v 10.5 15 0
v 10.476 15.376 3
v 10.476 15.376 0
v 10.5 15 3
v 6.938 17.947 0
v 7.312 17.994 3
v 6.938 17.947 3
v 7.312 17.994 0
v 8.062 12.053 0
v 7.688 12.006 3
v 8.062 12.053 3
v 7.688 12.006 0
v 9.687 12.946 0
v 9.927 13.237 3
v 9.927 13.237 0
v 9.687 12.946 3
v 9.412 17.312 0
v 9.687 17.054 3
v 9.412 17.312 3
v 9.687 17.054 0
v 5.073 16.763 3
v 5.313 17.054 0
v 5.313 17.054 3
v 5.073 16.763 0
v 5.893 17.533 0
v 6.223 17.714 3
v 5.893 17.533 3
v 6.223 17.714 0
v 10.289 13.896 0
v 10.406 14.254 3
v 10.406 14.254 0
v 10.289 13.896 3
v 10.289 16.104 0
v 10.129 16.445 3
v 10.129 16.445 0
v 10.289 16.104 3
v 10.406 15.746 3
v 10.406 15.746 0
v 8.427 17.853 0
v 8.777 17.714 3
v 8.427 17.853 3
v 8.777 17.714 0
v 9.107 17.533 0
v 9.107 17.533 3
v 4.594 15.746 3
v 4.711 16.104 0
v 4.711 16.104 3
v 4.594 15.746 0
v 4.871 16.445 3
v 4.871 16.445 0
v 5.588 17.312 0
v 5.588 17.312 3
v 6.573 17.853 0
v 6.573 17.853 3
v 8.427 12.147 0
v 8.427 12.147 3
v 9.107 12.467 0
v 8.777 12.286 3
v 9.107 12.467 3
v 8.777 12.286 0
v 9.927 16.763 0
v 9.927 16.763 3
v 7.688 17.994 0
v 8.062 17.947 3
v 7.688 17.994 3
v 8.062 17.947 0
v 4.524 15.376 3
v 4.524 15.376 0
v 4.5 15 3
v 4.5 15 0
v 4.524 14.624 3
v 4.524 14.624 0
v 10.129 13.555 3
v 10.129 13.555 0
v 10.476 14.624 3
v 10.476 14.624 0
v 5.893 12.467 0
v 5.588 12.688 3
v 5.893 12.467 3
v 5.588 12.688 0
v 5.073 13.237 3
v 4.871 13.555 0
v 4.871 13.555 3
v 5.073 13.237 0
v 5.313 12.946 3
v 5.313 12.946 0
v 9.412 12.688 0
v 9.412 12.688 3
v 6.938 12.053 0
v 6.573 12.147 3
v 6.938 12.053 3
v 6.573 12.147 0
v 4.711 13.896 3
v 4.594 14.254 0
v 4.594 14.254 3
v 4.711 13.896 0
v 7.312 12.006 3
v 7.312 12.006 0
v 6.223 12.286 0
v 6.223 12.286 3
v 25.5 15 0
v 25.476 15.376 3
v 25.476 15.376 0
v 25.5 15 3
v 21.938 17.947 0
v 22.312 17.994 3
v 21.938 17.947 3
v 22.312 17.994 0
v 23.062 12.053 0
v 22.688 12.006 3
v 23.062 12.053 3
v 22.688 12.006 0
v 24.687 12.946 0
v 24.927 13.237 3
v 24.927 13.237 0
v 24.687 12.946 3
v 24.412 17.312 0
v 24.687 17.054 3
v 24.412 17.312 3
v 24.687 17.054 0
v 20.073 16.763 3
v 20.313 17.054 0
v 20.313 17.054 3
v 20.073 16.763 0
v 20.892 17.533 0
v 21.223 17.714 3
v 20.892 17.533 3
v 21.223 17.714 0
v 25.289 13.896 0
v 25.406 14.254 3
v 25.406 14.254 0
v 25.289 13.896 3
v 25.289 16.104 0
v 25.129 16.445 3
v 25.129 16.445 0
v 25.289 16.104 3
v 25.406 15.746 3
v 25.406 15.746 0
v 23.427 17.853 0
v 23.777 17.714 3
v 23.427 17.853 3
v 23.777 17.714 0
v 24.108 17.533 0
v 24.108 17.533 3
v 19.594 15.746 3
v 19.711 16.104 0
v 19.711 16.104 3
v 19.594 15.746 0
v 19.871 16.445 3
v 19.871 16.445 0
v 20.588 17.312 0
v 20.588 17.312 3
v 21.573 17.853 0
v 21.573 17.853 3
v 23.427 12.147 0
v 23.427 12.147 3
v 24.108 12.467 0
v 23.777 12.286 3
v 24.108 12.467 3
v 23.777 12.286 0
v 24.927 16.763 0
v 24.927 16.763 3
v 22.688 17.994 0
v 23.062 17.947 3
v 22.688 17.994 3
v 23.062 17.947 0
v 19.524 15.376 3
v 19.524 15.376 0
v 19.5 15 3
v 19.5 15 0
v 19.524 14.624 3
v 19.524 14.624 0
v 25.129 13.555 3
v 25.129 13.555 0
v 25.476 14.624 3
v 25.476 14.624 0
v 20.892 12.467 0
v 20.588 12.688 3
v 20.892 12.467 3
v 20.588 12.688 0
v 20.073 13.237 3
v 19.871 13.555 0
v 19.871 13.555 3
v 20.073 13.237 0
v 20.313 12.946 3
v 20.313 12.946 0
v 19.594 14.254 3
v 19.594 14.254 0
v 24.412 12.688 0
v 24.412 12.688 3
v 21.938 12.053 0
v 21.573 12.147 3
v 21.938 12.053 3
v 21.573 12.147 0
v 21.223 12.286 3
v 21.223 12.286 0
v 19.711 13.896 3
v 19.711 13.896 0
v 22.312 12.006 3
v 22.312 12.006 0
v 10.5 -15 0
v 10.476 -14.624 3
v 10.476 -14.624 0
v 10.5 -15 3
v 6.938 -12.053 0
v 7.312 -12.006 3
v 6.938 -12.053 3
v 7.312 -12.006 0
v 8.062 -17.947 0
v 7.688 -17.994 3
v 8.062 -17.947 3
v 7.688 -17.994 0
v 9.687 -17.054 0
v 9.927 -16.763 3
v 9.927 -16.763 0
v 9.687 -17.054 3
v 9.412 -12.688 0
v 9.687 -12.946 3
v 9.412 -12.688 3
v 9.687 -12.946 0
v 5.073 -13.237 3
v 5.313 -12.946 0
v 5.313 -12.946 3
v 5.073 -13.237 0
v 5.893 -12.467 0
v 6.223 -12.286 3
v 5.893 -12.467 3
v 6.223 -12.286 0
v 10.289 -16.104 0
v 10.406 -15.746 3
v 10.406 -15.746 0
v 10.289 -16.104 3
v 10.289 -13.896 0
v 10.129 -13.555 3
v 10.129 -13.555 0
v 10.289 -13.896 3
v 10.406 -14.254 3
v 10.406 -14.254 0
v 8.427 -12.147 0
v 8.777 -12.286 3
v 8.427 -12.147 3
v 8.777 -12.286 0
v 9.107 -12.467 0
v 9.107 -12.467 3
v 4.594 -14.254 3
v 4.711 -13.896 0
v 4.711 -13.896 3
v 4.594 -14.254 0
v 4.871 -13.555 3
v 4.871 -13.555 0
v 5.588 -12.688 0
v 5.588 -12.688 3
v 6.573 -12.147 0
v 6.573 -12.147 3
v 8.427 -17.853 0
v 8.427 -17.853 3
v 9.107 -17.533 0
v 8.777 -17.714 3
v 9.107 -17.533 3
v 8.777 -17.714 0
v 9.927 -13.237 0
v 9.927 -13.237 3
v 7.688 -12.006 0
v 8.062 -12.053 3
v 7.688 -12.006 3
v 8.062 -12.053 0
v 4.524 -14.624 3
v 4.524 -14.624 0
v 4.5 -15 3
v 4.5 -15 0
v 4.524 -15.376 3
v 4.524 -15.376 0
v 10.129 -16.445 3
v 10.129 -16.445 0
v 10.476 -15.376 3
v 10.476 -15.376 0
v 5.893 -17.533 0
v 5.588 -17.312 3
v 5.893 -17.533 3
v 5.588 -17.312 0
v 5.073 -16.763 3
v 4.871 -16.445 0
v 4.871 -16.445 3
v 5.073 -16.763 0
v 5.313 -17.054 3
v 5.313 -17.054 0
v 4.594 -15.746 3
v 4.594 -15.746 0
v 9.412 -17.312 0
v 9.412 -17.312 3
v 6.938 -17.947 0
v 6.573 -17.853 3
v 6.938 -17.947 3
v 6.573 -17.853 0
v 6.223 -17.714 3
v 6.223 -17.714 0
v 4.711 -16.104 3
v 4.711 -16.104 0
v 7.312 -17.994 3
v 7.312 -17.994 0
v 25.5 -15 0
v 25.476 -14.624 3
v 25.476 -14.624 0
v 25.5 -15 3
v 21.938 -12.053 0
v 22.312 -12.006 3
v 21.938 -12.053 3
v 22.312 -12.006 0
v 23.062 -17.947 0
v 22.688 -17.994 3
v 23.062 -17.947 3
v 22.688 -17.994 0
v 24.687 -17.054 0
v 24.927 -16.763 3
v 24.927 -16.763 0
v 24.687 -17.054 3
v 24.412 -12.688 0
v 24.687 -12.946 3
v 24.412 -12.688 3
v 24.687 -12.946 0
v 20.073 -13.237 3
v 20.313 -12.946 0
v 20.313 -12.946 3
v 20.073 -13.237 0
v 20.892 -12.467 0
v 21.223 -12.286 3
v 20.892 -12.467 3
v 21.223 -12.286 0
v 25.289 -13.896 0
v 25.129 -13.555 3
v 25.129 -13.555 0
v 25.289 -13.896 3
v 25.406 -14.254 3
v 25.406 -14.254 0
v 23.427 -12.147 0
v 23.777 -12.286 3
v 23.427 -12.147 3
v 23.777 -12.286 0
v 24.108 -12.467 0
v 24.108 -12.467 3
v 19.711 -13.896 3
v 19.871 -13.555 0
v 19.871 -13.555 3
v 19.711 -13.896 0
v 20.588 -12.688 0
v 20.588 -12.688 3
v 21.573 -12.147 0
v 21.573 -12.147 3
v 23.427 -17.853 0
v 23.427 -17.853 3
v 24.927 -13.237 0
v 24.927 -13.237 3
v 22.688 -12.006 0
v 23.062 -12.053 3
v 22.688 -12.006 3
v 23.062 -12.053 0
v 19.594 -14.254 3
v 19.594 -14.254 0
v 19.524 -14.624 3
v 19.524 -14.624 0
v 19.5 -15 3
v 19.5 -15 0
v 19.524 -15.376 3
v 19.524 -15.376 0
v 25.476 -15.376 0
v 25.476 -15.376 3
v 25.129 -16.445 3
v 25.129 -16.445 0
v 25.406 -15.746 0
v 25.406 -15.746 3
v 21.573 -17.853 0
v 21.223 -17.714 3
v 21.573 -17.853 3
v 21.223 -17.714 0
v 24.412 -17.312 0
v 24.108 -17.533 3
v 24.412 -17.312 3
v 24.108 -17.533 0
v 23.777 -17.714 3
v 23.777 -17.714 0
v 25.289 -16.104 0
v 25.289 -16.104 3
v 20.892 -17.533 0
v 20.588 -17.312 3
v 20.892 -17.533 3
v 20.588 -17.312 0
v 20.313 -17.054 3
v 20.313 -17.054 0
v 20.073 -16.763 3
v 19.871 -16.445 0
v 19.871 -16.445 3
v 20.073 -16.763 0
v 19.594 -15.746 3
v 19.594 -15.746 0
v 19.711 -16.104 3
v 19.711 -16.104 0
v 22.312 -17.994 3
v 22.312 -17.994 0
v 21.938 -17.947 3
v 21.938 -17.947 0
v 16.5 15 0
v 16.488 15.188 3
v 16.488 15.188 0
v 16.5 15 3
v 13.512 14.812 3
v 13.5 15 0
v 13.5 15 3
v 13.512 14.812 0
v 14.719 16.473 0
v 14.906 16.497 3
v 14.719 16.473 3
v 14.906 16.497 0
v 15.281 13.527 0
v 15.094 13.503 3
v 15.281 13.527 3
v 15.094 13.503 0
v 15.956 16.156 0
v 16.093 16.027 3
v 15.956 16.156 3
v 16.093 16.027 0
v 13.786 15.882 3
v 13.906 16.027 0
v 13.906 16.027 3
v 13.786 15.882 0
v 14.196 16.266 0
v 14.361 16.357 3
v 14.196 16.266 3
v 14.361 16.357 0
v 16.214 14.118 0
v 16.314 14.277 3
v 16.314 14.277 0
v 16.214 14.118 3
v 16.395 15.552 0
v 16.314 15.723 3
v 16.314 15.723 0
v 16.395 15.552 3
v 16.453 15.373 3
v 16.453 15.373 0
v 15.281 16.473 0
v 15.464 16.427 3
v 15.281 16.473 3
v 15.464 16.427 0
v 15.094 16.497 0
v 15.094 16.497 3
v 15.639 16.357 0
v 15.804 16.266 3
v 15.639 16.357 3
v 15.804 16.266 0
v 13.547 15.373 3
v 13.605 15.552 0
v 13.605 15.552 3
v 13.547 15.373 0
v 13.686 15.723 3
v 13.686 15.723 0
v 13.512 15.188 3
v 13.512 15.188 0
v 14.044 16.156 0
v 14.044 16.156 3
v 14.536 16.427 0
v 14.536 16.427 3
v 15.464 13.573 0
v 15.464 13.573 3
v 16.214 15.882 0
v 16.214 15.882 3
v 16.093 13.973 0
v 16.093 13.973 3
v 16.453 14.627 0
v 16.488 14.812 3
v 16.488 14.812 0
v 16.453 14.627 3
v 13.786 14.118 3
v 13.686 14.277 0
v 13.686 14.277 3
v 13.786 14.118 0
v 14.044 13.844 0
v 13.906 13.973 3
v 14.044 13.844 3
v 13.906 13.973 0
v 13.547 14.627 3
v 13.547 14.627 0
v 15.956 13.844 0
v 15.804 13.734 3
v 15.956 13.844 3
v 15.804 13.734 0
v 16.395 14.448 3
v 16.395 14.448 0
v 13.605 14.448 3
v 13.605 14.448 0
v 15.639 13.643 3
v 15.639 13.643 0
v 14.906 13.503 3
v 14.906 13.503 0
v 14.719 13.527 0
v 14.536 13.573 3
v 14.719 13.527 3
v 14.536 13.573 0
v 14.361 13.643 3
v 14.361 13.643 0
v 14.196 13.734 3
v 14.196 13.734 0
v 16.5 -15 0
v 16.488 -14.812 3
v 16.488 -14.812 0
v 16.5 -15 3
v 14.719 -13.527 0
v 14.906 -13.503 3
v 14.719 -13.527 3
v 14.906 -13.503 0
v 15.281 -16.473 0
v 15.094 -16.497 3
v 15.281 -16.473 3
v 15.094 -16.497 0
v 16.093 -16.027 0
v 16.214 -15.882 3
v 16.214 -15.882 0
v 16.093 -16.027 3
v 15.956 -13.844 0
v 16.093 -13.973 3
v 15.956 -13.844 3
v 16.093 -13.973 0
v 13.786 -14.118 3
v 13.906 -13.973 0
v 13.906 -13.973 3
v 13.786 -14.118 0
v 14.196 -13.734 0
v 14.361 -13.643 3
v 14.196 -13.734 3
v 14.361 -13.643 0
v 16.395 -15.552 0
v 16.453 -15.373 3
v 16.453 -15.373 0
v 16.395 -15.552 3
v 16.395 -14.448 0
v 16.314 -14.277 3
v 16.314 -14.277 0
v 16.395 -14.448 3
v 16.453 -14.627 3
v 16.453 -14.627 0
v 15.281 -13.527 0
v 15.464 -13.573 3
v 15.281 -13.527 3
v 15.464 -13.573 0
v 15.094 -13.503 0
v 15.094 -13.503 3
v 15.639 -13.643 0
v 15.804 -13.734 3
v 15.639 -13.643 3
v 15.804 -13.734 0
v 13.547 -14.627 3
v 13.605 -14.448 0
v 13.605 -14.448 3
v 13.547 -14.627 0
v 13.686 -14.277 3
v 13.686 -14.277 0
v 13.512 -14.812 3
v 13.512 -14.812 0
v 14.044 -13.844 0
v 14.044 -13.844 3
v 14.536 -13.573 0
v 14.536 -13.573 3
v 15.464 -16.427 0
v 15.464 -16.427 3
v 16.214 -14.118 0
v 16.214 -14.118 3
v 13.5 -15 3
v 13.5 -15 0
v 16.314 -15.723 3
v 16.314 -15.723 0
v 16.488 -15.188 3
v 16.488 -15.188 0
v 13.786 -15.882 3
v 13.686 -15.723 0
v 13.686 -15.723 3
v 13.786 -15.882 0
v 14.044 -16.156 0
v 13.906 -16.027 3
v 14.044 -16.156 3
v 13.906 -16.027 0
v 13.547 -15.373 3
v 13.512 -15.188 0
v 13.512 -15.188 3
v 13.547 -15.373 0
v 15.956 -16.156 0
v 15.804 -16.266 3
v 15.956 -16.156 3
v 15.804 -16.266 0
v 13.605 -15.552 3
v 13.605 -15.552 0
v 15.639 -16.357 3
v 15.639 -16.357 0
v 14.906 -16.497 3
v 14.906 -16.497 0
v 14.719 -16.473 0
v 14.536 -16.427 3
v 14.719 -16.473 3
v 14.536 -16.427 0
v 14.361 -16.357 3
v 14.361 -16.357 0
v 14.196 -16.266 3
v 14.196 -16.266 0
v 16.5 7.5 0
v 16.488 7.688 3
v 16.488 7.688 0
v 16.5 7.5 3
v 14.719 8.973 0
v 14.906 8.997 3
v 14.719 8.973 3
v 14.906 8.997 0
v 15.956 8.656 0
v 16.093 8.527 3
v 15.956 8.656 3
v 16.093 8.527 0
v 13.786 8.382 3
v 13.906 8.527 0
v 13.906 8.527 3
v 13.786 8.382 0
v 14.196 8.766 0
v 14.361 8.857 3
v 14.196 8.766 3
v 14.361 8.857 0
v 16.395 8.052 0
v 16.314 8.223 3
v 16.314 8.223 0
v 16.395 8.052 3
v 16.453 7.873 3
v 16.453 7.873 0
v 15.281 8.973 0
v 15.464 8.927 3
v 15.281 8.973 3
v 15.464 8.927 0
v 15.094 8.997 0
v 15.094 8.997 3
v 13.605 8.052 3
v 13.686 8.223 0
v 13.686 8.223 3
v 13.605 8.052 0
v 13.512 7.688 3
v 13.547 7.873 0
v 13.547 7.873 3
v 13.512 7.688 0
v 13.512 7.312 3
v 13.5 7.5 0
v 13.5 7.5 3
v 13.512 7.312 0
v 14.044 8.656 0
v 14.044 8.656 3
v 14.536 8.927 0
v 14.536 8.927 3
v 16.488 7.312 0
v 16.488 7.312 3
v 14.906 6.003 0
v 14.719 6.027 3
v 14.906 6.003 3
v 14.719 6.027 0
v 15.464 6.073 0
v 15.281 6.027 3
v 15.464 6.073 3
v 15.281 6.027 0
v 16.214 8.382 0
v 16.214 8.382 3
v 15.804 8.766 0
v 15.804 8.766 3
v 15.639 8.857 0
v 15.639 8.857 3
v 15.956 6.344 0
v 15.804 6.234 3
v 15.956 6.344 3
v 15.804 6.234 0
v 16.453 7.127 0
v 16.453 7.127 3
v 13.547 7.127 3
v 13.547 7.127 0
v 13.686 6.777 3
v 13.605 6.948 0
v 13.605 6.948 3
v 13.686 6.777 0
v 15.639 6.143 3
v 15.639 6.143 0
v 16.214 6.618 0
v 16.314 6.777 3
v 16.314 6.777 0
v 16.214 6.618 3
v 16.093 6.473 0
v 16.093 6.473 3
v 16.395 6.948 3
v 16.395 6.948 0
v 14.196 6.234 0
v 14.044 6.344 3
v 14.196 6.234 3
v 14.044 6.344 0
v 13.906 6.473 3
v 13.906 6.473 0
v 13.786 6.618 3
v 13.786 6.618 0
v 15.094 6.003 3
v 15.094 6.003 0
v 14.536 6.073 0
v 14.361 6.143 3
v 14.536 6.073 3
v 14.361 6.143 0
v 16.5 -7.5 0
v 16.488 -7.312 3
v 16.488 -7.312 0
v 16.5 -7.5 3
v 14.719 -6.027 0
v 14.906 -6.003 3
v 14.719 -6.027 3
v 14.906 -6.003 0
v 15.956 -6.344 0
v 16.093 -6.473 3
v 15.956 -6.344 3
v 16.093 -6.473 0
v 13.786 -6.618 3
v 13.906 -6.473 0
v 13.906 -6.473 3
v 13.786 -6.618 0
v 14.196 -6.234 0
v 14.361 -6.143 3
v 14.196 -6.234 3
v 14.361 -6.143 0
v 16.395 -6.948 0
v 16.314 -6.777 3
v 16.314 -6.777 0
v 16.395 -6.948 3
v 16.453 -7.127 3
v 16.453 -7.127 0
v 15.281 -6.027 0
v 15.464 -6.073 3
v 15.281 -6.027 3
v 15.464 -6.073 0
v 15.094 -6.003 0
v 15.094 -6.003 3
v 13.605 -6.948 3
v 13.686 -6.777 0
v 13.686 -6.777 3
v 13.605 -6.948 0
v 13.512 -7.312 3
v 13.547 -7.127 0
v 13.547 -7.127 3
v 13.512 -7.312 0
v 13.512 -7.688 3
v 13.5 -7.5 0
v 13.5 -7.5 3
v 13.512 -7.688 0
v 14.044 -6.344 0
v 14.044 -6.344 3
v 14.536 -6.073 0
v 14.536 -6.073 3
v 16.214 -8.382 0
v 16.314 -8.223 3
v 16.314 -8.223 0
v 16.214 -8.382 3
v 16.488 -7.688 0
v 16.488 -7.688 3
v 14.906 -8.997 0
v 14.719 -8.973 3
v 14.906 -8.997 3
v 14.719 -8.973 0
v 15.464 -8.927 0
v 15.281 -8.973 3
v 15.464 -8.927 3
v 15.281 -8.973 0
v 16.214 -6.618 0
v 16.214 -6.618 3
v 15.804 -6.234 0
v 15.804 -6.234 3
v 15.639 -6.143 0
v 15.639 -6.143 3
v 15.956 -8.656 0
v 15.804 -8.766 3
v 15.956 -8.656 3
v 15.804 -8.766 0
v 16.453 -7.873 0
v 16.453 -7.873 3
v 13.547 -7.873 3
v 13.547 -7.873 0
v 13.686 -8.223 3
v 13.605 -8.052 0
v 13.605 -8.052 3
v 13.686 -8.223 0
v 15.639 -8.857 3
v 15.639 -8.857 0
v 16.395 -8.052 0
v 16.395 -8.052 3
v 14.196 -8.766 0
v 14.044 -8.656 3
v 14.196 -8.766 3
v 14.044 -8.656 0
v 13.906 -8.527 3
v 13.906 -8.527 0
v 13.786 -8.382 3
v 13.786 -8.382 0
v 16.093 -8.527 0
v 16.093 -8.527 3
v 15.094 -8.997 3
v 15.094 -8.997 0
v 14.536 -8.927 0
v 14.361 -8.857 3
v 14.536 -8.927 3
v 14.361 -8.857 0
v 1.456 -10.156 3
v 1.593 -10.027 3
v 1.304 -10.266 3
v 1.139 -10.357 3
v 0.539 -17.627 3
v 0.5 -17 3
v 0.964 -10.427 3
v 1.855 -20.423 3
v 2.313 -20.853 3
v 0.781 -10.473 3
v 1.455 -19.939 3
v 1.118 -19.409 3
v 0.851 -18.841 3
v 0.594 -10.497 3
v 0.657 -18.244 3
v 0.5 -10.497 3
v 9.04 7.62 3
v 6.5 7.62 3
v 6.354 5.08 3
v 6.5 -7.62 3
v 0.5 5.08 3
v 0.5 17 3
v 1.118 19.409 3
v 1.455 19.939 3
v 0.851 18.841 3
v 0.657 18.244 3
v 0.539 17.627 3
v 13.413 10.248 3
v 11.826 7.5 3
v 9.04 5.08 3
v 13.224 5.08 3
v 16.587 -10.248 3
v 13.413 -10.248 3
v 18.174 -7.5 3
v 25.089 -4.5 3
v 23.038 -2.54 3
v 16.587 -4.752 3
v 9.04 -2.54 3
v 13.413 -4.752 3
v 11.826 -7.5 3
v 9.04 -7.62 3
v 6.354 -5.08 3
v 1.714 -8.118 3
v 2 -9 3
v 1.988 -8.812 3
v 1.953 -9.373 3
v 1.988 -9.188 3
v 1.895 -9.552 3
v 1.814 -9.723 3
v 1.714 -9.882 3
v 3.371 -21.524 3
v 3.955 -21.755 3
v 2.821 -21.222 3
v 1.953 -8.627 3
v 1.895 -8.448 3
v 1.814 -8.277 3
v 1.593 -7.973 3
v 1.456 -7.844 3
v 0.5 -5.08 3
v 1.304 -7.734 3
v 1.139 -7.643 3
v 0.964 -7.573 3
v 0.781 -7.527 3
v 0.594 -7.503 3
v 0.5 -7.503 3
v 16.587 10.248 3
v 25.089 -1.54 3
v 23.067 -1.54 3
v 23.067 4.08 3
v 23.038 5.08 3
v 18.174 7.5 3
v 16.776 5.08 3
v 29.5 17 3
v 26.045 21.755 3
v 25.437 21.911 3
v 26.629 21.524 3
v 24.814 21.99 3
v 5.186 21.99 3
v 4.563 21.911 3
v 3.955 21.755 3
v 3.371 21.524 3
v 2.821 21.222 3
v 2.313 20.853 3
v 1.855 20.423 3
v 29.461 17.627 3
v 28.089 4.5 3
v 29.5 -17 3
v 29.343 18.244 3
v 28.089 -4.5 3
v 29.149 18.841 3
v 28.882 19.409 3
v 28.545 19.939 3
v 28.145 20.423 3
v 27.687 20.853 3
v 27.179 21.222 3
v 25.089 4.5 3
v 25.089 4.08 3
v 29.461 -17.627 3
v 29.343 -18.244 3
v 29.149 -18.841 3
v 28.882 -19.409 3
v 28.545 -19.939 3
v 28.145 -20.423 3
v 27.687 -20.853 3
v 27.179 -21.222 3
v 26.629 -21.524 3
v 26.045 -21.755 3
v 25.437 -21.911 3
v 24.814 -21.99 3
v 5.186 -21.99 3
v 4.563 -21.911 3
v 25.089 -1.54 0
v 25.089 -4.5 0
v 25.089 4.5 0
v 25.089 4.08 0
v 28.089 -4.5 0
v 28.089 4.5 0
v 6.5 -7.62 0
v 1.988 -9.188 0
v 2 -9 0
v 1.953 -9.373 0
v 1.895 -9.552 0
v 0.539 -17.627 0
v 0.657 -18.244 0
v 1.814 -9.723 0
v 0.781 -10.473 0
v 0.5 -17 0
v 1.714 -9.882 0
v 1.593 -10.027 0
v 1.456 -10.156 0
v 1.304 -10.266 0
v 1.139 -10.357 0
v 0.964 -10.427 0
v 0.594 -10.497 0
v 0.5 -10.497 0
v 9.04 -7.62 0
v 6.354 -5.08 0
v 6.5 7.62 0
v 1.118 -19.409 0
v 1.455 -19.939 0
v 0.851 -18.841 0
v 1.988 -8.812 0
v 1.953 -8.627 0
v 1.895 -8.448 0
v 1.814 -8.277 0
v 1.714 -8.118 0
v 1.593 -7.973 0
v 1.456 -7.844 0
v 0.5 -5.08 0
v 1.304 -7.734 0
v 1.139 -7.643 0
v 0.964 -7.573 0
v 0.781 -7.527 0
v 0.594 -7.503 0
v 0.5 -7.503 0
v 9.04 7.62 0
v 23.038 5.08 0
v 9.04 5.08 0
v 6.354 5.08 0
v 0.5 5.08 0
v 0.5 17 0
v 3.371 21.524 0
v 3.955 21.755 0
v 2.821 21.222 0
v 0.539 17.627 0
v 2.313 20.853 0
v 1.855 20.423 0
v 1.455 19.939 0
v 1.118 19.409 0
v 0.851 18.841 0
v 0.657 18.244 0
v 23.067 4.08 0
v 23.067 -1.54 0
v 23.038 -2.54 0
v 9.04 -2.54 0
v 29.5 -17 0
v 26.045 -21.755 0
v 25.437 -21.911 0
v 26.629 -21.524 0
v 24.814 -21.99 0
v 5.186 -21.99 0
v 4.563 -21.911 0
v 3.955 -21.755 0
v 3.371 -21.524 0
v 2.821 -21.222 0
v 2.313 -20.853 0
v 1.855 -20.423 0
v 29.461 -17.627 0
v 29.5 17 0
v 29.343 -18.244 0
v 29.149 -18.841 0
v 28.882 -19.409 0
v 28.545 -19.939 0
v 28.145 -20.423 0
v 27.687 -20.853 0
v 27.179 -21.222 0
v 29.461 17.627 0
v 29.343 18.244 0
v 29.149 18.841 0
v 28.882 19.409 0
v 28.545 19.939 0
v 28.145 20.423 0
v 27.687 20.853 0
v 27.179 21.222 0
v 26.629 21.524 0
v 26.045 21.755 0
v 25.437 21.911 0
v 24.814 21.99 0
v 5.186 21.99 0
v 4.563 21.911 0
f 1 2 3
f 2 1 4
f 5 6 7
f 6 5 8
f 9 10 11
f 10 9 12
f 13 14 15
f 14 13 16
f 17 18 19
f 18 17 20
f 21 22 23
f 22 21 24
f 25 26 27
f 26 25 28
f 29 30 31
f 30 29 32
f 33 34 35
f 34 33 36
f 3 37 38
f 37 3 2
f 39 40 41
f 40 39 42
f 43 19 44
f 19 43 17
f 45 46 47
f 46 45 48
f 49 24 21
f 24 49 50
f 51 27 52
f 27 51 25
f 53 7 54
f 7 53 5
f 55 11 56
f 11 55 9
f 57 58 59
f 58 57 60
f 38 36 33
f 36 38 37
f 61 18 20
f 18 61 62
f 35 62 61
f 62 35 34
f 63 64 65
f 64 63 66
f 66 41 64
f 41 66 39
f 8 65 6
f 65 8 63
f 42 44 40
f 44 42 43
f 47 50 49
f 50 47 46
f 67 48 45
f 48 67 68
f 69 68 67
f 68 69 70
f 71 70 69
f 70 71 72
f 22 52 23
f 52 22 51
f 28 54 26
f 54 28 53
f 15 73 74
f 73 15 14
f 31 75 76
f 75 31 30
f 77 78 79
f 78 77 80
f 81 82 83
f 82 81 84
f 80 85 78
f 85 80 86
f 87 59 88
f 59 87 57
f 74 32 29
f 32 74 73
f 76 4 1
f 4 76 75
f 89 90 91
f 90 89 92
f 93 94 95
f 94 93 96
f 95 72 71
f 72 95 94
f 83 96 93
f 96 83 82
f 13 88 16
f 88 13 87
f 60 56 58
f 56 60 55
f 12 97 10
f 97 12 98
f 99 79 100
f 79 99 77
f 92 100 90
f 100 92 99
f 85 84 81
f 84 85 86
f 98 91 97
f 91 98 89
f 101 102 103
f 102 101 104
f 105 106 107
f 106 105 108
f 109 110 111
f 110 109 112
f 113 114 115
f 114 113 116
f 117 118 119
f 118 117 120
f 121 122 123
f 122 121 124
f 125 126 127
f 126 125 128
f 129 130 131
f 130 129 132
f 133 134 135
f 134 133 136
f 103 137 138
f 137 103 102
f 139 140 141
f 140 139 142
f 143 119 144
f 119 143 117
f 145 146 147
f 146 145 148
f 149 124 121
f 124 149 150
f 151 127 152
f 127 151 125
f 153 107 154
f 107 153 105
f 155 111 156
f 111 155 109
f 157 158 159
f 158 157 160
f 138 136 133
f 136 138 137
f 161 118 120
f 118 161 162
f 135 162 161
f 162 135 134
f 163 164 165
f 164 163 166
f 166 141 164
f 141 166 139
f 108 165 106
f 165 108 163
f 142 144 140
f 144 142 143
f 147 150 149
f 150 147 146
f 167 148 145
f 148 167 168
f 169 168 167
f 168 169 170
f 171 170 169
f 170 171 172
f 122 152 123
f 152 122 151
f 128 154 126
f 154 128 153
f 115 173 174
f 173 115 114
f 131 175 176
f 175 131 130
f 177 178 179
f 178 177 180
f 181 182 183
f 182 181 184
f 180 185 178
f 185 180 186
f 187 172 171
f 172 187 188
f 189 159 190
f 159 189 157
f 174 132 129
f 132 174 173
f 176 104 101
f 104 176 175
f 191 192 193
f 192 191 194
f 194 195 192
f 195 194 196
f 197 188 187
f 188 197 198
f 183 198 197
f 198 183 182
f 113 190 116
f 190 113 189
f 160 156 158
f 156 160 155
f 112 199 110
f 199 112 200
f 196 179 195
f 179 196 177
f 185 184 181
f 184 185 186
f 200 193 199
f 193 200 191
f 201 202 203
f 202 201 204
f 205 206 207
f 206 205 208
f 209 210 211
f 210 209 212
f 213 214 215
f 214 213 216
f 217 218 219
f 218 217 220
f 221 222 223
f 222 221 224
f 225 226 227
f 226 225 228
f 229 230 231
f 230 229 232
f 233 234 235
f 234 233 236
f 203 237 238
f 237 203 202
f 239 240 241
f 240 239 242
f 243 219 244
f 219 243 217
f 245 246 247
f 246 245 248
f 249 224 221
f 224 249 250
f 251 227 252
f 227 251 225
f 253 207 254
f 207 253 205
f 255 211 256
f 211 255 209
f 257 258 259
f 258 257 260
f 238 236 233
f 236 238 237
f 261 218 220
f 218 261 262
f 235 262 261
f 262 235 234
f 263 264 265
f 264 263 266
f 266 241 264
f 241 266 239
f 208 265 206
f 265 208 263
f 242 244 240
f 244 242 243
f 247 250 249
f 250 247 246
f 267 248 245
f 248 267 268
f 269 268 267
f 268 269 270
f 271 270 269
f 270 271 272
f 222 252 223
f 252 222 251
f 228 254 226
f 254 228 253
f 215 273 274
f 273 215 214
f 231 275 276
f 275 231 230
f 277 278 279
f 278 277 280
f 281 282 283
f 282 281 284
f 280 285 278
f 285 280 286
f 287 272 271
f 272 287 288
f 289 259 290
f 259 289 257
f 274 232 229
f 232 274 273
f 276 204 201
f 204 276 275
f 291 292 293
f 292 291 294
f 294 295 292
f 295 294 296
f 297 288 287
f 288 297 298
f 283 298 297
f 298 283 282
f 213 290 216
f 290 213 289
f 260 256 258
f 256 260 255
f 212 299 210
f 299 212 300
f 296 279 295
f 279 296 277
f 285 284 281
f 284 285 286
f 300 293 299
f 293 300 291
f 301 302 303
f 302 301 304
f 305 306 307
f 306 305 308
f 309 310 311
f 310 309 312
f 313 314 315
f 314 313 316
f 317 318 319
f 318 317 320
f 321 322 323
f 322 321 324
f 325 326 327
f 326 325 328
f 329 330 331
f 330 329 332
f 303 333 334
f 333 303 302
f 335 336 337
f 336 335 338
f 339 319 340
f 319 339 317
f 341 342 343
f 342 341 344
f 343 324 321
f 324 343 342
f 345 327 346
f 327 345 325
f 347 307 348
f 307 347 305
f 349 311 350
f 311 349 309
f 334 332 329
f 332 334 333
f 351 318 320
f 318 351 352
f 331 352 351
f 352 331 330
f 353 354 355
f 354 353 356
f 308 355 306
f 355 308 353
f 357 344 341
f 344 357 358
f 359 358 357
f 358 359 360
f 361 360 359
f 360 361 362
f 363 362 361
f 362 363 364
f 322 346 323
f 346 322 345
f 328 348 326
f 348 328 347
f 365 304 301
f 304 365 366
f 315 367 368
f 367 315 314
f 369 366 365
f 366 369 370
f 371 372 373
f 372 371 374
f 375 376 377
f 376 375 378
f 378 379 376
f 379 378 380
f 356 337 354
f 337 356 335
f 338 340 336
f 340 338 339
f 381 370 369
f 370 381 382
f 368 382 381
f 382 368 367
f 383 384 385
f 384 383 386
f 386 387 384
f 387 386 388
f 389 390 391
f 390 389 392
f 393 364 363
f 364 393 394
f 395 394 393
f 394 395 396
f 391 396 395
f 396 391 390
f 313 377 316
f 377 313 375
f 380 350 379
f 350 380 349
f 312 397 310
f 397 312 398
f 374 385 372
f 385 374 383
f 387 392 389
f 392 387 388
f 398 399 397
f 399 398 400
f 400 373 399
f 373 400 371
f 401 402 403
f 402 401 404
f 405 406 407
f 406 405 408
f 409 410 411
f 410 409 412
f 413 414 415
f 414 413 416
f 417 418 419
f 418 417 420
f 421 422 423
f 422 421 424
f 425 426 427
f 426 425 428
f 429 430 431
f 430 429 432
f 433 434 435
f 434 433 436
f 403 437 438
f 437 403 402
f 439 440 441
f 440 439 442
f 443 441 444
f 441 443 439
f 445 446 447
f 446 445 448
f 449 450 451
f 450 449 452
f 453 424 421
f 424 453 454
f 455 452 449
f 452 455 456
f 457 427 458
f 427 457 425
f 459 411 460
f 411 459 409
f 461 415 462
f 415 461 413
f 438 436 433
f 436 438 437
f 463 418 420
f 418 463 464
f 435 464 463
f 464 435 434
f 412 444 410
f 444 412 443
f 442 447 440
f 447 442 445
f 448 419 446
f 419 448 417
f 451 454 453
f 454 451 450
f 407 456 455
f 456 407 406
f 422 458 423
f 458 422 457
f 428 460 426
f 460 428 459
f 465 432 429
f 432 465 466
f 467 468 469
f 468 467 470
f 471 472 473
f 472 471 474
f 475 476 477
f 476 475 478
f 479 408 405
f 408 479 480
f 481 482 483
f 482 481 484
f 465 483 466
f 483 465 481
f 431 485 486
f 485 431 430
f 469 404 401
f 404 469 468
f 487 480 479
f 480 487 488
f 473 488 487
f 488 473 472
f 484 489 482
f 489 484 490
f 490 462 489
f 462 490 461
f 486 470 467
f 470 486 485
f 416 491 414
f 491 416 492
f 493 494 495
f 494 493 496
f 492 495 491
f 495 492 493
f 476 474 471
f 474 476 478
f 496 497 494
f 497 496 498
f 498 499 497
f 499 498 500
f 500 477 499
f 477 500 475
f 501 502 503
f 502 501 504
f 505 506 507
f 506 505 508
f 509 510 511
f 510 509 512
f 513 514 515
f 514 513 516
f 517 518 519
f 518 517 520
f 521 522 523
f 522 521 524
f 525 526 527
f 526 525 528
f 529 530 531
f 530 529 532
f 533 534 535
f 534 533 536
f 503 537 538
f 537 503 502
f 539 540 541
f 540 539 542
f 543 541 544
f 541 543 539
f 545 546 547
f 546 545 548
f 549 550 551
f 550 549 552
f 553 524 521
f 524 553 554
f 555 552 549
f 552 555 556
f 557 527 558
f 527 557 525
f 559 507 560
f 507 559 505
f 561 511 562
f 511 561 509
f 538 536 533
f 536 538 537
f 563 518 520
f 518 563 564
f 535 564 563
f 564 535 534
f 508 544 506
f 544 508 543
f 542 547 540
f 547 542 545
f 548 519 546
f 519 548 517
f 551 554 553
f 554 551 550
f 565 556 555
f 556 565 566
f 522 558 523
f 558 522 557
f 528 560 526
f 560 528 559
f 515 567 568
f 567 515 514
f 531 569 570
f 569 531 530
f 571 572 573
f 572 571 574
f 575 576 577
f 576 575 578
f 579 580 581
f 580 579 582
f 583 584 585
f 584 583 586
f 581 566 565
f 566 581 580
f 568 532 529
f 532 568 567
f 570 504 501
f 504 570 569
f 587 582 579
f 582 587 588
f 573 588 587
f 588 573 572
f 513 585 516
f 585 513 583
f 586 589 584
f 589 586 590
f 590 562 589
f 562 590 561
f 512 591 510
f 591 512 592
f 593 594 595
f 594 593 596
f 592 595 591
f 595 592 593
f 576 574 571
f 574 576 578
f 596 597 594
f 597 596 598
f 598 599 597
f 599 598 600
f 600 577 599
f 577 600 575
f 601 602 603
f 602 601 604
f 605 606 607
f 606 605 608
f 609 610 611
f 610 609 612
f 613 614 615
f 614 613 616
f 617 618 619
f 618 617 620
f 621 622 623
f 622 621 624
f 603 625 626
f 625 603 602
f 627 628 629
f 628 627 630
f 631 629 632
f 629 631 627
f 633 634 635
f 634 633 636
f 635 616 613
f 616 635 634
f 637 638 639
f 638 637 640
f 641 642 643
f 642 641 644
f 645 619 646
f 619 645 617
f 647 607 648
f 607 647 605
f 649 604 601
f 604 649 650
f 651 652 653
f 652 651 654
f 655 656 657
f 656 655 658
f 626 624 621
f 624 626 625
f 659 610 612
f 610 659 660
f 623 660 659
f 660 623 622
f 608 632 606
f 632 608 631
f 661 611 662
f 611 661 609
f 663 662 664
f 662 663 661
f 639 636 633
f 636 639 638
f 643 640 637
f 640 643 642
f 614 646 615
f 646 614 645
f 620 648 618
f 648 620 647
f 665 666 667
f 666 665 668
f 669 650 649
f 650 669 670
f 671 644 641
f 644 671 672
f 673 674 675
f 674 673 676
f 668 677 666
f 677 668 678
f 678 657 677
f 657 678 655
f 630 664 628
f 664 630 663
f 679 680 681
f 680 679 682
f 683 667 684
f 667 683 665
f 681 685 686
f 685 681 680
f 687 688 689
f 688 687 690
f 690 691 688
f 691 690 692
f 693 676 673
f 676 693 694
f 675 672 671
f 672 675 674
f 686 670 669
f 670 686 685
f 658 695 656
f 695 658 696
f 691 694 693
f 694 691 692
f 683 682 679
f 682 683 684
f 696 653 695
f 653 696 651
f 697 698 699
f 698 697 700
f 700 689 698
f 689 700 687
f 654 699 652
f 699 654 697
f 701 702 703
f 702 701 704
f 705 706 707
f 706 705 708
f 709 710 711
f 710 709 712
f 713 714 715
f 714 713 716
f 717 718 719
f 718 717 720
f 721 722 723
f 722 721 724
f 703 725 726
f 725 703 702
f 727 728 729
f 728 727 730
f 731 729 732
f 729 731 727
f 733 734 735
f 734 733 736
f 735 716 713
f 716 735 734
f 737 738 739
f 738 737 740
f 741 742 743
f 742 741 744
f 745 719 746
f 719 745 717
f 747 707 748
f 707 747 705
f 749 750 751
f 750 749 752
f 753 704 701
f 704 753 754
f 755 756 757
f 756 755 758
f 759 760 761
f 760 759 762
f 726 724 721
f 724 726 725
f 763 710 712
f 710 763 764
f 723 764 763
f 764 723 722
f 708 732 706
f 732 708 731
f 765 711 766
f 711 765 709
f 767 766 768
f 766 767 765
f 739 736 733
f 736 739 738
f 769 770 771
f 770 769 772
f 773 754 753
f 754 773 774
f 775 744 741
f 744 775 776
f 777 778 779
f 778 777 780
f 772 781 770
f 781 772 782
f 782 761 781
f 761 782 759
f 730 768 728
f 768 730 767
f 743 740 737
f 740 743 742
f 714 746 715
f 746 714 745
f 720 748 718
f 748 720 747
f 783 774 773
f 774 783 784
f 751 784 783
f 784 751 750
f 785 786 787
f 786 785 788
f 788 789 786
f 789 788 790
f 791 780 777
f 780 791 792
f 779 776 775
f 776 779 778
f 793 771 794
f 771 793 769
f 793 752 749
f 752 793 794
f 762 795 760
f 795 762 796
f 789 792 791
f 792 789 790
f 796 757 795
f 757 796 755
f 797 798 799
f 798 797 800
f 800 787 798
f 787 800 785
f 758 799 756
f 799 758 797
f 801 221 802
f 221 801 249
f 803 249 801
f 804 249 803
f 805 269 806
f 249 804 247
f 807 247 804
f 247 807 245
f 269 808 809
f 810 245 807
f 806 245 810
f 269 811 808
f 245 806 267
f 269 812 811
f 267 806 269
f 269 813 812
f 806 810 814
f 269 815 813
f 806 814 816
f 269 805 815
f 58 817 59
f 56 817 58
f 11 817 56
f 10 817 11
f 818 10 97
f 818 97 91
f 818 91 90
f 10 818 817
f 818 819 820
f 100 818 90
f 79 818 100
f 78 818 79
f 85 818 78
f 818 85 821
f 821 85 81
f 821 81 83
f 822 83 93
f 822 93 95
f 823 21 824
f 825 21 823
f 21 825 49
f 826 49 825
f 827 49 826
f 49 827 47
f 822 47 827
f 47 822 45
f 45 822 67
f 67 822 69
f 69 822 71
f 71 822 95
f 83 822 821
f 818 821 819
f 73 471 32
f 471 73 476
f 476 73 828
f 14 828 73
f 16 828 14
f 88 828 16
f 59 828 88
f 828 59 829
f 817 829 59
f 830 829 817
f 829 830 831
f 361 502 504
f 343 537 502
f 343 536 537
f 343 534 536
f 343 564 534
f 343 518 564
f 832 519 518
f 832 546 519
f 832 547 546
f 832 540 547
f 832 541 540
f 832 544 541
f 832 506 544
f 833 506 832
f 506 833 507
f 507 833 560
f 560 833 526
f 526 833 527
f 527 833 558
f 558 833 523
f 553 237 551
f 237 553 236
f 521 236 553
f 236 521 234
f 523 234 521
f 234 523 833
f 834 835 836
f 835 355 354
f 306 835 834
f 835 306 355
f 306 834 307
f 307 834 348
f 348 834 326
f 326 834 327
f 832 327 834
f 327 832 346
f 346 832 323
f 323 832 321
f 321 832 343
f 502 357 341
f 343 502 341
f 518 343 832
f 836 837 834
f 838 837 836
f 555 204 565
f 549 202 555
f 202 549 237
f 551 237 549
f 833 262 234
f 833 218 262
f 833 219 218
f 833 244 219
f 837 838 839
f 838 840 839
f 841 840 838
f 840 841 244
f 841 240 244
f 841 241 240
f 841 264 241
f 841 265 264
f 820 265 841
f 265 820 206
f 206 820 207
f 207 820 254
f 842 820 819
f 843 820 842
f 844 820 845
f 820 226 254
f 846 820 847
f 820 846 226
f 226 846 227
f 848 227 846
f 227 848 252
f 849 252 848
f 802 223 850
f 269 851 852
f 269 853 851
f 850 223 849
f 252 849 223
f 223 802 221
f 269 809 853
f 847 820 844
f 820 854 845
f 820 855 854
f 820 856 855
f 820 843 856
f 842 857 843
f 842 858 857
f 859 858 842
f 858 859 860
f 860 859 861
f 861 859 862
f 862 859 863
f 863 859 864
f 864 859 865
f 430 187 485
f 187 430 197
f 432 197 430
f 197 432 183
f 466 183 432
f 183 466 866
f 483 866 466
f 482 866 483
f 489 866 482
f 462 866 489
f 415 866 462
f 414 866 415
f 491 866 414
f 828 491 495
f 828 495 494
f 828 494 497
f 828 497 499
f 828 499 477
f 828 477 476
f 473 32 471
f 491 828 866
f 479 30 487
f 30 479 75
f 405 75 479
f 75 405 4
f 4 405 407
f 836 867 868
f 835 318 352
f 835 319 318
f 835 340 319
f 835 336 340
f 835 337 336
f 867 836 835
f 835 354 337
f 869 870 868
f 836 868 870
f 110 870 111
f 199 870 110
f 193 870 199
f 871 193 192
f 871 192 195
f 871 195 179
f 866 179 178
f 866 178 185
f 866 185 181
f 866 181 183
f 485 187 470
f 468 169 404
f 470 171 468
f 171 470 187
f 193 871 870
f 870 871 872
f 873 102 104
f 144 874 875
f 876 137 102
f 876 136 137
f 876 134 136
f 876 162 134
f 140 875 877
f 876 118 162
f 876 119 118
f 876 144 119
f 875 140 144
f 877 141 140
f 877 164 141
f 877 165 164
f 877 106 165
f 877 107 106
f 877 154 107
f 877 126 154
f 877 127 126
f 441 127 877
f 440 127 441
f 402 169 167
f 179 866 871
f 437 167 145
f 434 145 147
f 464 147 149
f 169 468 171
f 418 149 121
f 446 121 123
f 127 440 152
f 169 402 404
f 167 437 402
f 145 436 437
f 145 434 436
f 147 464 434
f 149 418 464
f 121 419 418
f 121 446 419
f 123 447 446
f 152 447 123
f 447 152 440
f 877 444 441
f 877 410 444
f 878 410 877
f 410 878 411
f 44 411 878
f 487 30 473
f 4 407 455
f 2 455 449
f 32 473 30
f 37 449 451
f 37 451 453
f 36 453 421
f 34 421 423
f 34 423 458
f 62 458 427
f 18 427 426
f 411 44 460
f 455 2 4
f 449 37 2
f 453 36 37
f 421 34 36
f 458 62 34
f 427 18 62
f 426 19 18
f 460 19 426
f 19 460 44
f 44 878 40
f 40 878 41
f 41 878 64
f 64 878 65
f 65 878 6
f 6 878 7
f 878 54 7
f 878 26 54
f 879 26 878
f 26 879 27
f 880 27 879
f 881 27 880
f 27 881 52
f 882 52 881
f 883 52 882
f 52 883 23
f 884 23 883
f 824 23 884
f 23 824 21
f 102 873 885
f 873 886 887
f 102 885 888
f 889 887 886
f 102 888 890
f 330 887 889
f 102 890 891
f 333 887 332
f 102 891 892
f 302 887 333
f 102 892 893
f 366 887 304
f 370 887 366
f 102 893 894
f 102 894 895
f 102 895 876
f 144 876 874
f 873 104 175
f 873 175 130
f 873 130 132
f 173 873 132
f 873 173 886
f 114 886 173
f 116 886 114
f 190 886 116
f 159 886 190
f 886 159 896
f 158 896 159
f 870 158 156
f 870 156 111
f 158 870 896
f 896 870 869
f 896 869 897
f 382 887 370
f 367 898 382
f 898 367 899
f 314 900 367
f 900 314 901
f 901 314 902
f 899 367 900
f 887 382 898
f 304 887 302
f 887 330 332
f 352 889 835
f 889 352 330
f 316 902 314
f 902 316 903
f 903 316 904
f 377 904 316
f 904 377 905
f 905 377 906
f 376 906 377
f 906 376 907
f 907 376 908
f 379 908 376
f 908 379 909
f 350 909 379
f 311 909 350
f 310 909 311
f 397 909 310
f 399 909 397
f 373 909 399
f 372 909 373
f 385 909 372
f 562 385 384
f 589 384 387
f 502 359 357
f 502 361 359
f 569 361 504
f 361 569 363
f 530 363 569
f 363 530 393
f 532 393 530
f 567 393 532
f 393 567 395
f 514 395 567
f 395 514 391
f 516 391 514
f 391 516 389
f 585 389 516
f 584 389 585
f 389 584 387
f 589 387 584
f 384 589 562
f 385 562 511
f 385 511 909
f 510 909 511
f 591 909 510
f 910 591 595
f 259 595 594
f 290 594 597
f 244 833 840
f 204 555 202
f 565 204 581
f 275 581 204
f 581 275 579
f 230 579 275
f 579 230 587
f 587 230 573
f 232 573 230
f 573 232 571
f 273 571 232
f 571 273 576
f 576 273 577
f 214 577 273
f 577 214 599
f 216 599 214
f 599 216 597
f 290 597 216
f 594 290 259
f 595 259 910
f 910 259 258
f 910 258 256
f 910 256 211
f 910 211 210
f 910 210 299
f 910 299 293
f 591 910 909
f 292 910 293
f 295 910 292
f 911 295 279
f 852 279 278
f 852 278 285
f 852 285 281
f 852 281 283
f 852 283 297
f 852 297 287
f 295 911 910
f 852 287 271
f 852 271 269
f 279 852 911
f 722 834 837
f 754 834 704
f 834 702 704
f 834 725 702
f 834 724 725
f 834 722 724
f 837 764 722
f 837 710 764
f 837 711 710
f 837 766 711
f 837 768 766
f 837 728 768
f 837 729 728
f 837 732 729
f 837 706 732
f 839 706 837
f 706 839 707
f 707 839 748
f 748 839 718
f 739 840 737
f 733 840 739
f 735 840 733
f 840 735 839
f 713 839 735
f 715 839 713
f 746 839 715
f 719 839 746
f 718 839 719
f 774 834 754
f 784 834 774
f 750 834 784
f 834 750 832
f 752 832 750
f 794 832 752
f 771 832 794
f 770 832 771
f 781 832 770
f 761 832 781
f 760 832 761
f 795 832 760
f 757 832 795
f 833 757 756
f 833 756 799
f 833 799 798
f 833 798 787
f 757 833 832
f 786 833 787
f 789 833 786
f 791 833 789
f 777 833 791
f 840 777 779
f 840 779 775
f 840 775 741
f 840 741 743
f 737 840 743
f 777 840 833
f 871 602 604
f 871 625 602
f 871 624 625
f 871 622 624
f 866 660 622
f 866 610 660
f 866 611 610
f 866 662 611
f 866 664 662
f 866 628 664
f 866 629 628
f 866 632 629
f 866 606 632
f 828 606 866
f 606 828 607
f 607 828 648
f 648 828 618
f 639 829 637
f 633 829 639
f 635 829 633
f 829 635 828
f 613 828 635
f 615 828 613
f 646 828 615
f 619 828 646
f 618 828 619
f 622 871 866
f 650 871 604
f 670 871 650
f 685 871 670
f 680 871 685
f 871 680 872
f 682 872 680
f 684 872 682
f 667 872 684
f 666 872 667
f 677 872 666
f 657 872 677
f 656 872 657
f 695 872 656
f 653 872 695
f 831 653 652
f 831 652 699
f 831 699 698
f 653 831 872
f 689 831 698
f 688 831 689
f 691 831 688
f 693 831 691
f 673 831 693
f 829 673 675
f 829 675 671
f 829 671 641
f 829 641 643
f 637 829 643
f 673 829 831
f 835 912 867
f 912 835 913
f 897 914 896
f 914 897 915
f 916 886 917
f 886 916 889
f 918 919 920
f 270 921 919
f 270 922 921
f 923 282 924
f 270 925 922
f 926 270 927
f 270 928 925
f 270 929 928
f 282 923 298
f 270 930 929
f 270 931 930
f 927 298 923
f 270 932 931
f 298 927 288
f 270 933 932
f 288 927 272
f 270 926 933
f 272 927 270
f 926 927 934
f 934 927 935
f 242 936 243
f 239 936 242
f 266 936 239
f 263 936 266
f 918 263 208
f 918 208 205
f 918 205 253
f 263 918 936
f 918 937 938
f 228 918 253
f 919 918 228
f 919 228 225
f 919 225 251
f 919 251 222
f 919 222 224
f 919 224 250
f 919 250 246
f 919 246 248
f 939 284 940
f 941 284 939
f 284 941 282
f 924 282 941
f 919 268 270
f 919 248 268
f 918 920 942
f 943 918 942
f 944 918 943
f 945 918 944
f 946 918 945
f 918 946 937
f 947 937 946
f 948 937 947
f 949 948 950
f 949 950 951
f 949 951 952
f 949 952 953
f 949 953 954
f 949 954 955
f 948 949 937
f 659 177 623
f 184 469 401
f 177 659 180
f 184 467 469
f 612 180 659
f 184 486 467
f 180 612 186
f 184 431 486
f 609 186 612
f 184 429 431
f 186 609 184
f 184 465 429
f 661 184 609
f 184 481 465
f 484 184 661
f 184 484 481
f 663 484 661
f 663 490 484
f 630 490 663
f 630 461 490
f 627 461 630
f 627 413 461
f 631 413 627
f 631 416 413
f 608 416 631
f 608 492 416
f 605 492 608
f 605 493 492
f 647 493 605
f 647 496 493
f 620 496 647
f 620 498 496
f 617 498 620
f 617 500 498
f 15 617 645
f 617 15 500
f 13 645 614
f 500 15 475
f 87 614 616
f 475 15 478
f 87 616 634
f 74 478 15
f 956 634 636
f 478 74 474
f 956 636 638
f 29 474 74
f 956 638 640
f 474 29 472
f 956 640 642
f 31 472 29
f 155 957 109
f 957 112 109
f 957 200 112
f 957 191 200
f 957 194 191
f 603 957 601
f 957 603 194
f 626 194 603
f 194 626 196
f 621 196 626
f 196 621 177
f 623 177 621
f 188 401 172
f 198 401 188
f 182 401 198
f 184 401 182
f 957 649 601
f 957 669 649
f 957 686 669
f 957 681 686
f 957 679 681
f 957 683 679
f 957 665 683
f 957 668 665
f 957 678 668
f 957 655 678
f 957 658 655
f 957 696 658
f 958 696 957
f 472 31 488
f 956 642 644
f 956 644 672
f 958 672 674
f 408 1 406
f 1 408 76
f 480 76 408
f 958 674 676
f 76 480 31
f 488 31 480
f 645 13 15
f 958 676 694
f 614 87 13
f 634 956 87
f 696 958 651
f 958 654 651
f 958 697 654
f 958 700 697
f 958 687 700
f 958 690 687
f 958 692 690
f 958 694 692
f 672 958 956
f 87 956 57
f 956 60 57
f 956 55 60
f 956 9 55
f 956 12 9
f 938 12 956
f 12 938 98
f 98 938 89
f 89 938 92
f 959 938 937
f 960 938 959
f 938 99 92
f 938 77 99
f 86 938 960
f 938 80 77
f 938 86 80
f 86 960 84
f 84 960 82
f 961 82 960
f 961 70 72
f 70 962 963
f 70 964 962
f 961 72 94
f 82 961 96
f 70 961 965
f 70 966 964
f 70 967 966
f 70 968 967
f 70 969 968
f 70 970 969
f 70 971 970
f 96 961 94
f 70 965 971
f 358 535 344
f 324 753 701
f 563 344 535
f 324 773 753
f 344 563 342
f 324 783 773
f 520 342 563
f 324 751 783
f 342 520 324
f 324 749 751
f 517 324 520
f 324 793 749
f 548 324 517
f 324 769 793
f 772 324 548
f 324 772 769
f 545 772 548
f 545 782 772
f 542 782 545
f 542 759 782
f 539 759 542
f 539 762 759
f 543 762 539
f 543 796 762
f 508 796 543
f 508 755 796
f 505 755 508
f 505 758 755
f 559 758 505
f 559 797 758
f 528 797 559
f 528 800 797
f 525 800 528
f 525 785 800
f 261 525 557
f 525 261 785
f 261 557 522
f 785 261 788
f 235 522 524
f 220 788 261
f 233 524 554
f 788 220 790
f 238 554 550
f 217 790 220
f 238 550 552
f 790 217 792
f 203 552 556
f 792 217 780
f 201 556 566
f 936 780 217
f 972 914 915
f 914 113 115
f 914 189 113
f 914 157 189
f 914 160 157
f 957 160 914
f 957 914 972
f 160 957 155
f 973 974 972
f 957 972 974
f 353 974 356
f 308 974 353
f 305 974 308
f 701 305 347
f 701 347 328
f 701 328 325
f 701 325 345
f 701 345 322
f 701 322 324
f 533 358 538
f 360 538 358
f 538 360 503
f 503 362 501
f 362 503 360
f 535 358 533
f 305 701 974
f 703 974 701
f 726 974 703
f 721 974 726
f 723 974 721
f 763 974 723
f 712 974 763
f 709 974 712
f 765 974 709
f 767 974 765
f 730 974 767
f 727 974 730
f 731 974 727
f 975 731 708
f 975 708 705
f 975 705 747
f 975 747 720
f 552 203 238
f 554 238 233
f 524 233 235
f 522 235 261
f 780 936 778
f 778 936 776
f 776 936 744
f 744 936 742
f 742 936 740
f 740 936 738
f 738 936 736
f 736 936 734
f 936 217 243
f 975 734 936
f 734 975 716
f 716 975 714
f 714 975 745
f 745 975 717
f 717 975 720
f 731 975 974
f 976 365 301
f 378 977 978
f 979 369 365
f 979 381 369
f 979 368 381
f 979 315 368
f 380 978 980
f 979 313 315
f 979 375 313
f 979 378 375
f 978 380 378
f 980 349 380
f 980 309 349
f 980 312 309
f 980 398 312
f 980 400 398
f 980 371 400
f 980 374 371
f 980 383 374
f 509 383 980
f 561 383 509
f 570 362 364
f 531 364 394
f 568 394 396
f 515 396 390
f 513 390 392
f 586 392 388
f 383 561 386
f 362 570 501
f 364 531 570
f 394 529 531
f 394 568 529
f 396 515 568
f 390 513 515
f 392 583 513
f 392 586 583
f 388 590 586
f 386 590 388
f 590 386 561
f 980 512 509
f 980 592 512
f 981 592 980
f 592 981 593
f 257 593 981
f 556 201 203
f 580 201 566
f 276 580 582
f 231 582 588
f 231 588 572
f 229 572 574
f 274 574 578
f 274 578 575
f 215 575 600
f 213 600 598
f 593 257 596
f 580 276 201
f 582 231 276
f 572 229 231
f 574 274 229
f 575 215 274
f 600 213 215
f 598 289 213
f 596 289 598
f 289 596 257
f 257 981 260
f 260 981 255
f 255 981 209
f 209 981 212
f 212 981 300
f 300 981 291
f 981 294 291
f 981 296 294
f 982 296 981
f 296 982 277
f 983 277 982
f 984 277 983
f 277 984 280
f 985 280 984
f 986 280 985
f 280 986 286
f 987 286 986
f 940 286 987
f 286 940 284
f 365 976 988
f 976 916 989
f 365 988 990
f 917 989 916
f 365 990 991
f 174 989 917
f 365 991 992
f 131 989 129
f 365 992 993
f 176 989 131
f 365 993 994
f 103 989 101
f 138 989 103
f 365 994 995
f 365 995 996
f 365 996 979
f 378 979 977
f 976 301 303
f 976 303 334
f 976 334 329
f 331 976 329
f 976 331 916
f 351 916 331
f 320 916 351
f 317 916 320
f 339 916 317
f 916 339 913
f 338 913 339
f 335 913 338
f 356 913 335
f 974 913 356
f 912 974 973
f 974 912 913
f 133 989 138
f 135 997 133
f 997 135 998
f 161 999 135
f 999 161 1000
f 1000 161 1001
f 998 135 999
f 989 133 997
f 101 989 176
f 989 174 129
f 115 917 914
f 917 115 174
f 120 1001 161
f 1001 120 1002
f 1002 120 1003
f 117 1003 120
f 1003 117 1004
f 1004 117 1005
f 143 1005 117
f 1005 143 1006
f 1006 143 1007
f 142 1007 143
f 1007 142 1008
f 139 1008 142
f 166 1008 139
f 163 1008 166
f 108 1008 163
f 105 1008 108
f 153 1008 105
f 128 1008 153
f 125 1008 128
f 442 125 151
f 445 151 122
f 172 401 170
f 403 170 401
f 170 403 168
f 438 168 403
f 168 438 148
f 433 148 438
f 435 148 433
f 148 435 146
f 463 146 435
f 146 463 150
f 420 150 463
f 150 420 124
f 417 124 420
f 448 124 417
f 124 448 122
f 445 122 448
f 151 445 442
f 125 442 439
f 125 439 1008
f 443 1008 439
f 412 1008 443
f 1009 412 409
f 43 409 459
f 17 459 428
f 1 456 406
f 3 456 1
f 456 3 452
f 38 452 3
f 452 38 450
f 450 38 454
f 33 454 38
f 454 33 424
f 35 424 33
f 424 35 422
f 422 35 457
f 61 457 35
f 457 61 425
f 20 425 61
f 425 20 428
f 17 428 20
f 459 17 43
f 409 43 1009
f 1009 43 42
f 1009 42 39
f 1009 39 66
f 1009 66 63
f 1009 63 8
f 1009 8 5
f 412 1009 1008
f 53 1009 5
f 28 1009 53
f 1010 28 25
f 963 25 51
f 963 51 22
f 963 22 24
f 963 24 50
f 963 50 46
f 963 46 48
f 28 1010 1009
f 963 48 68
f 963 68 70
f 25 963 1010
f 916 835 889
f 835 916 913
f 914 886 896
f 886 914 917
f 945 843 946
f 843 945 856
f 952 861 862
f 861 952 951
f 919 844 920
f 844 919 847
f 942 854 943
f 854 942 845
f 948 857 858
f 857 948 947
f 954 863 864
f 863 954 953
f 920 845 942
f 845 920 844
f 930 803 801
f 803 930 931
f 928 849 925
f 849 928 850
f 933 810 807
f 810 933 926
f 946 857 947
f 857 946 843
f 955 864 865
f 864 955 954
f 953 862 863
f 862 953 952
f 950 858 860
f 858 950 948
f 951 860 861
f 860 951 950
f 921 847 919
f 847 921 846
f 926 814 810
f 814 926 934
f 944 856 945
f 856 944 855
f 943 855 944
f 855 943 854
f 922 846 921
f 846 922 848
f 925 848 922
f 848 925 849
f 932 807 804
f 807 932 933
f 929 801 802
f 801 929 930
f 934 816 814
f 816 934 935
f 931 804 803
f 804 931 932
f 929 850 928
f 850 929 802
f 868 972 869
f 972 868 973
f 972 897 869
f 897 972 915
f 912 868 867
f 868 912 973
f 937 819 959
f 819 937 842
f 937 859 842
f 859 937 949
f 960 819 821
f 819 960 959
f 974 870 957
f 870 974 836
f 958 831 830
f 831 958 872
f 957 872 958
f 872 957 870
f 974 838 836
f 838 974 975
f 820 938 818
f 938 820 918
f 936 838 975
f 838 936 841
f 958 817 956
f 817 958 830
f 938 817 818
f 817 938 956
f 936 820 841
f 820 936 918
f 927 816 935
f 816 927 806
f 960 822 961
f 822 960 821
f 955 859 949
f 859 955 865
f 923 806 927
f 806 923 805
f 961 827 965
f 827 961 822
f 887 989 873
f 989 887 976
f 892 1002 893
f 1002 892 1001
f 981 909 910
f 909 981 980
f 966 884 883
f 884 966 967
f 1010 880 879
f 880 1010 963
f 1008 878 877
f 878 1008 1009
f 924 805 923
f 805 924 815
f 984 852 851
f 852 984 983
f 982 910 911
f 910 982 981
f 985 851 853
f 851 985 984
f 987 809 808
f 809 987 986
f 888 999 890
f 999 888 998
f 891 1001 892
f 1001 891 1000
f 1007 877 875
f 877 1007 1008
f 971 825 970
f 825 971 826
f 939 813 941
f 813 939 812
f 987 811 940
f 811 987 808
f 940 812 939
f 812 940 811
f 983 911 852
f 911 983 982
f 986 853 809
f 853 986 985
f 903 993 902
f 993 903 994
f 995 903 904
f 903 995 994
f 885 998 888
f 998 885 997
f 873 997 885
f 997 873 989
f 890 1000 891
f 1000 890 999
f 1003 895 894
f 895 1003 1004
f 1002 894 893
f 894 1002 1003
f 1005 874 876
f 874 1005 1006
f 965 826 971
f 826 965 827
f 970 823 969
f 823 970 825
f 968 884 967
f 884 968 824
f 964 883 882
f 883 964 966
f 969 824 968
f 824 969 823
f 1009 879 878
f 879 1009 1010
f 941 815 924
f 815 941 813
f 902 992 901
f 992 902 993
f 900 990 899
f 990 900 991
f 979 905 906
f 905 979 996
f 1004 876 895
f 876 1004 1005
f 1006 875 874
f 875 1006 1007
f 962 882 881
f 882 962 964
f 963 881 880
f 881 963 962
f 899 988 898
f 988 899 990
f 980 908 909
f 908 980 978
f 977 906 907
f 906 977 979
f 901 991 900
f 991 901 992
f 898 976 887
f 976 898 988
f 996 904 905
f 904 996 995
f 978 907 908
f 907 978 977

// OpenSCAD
$fn = 50;


difference() {
	union() {
		translate(v = [15.0000000000, 0, 0]) {
			rotate(a = [0, 0, 0]) {
				hull() {
					translate(v = [-9.5000000000, 17.0000000000, 0]) {
						rotate(a = [0, 0, 0]) {
							translate(v = [0, 0, 0]) {
								rotate(a = [0, 0, 0]) {
									cylinder(h = 3, r = 5);
								}
							}
						}
					}
					translate(v = [9.5000000000, 17.0000000000, 0]) {
						rotate(a = [0, 0, 0]) {
							translate(v = [0, 0, 0]) {
								rotate(a = [0, 0, 0]) {
									cylinder(h = 3, r = 5);
								}
							}
						}
					}
					translate(v = [-9.5000000000, -17.0000000000, 0]) {
						rotate(a = [0, 0, 0]) {
							translate(v = [0, 0, 0]) {
								rotate(a = [0, 0, 0]) {
									cylinder(h = 3, r = 5);
								}
							}
						}
					}
					translate(v = [9.5000000000, -17.0000000000, 0]) {
						rotate(a = [0, 0, 0]) {
							translate(v = [0, 0, 0]) {
								rotate(a = [0, 0, 0]) {
									cylinder(h = 3, r = 5);
								}
							}
						}
					}
				}
			}
		}
	}
	union() {
		translate(v = [7.5000000000, 15.0000000000, -125.0000000000]) {
			rotate(a = [0, 0, 0]) {
				cylinder(h = 250, r = 3.0000000000);
			}
		}
		translate(v = [22.5000000000, 15.0000000000, -125.0000000000]) {
			rotate(a = [0, 0, 0]) {
				cylinder(h = 250, r = 3.0000000000);
			}
		}
		translate(v = [7.5000000000, -15.0000000000, -125.0000000000]) {
			rotate(a = [0, 0, 0]) {
				cylinder(h = 250, r = 3.0000000000);
			}
		}
		translate(v = [22.5000000000, -15.0000000000, -125.0000000000]) {
			rotate(a = [0, 0, 0]) {
				cylinder(h = 250, r = 3.0000000000);
			}
		}
		translate(v = [7.5000000000, 15.0000000000, -125.0000000000]) {
			rotate(a = [0, 0, 0]) {
				cylinder(h = 250, r = 1.5000000000);
			}
		}
		translate(v = [15.0000000000, 15.0000000000, -125.0000000000]) {
			rotate(a = [0, 0, 0]) {
				cylinder(h = 250, r = 1.5000000000);
			}
		}
		translate(v = [22.5000000000, 15.0000000000, -125.0000000000]) {
			rotate(a = [0, 0, 0]) {
				cylinder(h = 250, r = 1.5000000000);
			}
		}
		translate(v = [7.5000000000, -15.0000000000, -125.0000000000]) {
			rotate(a = [0, 0, 0]) {
				cylinder(h = 250, r = 1.5000000000);
			}
		}
		translate(v = [15.0000000000, -15.0000000000, -125.0000000000]) {
			rotate(a = [0, 0, 0]) {
				cylinder(h = 250, r = 1.5000000000);
			}
		}
		translate(v = [22.5000000000, -15.0000000000, -125.0000000000]) {
			rotate(a = [0, 0, 0]) {
				cylinder(h = 250, r = 1.5000000000);
			}
		}
		translate(v = [15, 7.5000000000, -125.0000000000]) {
			rotate(a = [0, 0, 0]) {
				cylinder(h = 250, r = 1.5000000000);
			}
		}
		translate(v = [15, -7.5000000000, -125.0000000000]) {
			rotate(a = [0, 0, 0]) {
				cylinder(h = 250, r = 1.5000000000);
			}
		}
		translate(v = [15, 7.5000000000, 3]) {
			rotate(a = [0, 0, 0]) {
				translate(v = [0, 0, 0]) {
					rotate(a = [0, 0, 0]) {
						linear_extrude(height = 2.5000000000) {
							polygon(points = [[3.1735000000, 0.0000000000], [1.5867500000, 2.7483316189], [-1.5867500000, 2.7483316189], [-3.1735000000, 0.0000000000], [-1.5867500000, -2.7483316189], [1.5867500000, -2.7483316189]]);
						}
					}
				}
			}
		}
		translate(v = [15, -7.5000000000, 3]) {
			rotate(a = [0, 0, 0]) {
				translate(v = [0, 0, 0]) {
					rotate(a = [0, 0, 0]) {
						linear_extrude(height = 2.5000000000) {
							polygon(points = [[3.1735000000, 0.0000000000], [1.5867500000, 2.7483316189], [-1.5867500000, 2.7483316189], [-3.1735000000, 0.0000000000], [-1.5867500000, -2.7483316189], [1.5867500000, -2.7483316189]]);
						}
					}
				}
			}
		}
		translate(v = [25.0890000000, -4.5000000000, 0]) {
			rotate(a = [0, 0, 0]) {
				cube(size = [3, 9, 10]);
			}
		}
		translate(v = [0.5000000000, -9, 0.0000000000]) {
			rotate(a = [0, 0, 0]) {
				cylinder(h = 3, r = 1.5000000000);
			}
		}
		translate(v = [23.0670000000, -1.5400000000, 0]) {
			rotate(a = [0, 0, 0]) {
				cube(size = [5, 5.6200000000, 3]);
			}
		}
		translate(v = [0.3540000000, -5.0800000000, 0]) {
			rotate(a = [0, 0, 0]) {
				cube(size = [6, 10.1600000000, 3]);
			}
		}
		translate(v = [9.0380000000, -2.5400000000, 0]) {
			rotate(a = [0, 0, 0]) {
				cube(size = [14, 7.6200000000, 3]);
			}
		}
		translate(v = [6.5000000000, -7.6200000000, 0]) {
			rotate(a = [0, 0, 0]) {
				cube(size = [2.5400000000, 15.2400000000, 3]);
			}
		}
	}
}
